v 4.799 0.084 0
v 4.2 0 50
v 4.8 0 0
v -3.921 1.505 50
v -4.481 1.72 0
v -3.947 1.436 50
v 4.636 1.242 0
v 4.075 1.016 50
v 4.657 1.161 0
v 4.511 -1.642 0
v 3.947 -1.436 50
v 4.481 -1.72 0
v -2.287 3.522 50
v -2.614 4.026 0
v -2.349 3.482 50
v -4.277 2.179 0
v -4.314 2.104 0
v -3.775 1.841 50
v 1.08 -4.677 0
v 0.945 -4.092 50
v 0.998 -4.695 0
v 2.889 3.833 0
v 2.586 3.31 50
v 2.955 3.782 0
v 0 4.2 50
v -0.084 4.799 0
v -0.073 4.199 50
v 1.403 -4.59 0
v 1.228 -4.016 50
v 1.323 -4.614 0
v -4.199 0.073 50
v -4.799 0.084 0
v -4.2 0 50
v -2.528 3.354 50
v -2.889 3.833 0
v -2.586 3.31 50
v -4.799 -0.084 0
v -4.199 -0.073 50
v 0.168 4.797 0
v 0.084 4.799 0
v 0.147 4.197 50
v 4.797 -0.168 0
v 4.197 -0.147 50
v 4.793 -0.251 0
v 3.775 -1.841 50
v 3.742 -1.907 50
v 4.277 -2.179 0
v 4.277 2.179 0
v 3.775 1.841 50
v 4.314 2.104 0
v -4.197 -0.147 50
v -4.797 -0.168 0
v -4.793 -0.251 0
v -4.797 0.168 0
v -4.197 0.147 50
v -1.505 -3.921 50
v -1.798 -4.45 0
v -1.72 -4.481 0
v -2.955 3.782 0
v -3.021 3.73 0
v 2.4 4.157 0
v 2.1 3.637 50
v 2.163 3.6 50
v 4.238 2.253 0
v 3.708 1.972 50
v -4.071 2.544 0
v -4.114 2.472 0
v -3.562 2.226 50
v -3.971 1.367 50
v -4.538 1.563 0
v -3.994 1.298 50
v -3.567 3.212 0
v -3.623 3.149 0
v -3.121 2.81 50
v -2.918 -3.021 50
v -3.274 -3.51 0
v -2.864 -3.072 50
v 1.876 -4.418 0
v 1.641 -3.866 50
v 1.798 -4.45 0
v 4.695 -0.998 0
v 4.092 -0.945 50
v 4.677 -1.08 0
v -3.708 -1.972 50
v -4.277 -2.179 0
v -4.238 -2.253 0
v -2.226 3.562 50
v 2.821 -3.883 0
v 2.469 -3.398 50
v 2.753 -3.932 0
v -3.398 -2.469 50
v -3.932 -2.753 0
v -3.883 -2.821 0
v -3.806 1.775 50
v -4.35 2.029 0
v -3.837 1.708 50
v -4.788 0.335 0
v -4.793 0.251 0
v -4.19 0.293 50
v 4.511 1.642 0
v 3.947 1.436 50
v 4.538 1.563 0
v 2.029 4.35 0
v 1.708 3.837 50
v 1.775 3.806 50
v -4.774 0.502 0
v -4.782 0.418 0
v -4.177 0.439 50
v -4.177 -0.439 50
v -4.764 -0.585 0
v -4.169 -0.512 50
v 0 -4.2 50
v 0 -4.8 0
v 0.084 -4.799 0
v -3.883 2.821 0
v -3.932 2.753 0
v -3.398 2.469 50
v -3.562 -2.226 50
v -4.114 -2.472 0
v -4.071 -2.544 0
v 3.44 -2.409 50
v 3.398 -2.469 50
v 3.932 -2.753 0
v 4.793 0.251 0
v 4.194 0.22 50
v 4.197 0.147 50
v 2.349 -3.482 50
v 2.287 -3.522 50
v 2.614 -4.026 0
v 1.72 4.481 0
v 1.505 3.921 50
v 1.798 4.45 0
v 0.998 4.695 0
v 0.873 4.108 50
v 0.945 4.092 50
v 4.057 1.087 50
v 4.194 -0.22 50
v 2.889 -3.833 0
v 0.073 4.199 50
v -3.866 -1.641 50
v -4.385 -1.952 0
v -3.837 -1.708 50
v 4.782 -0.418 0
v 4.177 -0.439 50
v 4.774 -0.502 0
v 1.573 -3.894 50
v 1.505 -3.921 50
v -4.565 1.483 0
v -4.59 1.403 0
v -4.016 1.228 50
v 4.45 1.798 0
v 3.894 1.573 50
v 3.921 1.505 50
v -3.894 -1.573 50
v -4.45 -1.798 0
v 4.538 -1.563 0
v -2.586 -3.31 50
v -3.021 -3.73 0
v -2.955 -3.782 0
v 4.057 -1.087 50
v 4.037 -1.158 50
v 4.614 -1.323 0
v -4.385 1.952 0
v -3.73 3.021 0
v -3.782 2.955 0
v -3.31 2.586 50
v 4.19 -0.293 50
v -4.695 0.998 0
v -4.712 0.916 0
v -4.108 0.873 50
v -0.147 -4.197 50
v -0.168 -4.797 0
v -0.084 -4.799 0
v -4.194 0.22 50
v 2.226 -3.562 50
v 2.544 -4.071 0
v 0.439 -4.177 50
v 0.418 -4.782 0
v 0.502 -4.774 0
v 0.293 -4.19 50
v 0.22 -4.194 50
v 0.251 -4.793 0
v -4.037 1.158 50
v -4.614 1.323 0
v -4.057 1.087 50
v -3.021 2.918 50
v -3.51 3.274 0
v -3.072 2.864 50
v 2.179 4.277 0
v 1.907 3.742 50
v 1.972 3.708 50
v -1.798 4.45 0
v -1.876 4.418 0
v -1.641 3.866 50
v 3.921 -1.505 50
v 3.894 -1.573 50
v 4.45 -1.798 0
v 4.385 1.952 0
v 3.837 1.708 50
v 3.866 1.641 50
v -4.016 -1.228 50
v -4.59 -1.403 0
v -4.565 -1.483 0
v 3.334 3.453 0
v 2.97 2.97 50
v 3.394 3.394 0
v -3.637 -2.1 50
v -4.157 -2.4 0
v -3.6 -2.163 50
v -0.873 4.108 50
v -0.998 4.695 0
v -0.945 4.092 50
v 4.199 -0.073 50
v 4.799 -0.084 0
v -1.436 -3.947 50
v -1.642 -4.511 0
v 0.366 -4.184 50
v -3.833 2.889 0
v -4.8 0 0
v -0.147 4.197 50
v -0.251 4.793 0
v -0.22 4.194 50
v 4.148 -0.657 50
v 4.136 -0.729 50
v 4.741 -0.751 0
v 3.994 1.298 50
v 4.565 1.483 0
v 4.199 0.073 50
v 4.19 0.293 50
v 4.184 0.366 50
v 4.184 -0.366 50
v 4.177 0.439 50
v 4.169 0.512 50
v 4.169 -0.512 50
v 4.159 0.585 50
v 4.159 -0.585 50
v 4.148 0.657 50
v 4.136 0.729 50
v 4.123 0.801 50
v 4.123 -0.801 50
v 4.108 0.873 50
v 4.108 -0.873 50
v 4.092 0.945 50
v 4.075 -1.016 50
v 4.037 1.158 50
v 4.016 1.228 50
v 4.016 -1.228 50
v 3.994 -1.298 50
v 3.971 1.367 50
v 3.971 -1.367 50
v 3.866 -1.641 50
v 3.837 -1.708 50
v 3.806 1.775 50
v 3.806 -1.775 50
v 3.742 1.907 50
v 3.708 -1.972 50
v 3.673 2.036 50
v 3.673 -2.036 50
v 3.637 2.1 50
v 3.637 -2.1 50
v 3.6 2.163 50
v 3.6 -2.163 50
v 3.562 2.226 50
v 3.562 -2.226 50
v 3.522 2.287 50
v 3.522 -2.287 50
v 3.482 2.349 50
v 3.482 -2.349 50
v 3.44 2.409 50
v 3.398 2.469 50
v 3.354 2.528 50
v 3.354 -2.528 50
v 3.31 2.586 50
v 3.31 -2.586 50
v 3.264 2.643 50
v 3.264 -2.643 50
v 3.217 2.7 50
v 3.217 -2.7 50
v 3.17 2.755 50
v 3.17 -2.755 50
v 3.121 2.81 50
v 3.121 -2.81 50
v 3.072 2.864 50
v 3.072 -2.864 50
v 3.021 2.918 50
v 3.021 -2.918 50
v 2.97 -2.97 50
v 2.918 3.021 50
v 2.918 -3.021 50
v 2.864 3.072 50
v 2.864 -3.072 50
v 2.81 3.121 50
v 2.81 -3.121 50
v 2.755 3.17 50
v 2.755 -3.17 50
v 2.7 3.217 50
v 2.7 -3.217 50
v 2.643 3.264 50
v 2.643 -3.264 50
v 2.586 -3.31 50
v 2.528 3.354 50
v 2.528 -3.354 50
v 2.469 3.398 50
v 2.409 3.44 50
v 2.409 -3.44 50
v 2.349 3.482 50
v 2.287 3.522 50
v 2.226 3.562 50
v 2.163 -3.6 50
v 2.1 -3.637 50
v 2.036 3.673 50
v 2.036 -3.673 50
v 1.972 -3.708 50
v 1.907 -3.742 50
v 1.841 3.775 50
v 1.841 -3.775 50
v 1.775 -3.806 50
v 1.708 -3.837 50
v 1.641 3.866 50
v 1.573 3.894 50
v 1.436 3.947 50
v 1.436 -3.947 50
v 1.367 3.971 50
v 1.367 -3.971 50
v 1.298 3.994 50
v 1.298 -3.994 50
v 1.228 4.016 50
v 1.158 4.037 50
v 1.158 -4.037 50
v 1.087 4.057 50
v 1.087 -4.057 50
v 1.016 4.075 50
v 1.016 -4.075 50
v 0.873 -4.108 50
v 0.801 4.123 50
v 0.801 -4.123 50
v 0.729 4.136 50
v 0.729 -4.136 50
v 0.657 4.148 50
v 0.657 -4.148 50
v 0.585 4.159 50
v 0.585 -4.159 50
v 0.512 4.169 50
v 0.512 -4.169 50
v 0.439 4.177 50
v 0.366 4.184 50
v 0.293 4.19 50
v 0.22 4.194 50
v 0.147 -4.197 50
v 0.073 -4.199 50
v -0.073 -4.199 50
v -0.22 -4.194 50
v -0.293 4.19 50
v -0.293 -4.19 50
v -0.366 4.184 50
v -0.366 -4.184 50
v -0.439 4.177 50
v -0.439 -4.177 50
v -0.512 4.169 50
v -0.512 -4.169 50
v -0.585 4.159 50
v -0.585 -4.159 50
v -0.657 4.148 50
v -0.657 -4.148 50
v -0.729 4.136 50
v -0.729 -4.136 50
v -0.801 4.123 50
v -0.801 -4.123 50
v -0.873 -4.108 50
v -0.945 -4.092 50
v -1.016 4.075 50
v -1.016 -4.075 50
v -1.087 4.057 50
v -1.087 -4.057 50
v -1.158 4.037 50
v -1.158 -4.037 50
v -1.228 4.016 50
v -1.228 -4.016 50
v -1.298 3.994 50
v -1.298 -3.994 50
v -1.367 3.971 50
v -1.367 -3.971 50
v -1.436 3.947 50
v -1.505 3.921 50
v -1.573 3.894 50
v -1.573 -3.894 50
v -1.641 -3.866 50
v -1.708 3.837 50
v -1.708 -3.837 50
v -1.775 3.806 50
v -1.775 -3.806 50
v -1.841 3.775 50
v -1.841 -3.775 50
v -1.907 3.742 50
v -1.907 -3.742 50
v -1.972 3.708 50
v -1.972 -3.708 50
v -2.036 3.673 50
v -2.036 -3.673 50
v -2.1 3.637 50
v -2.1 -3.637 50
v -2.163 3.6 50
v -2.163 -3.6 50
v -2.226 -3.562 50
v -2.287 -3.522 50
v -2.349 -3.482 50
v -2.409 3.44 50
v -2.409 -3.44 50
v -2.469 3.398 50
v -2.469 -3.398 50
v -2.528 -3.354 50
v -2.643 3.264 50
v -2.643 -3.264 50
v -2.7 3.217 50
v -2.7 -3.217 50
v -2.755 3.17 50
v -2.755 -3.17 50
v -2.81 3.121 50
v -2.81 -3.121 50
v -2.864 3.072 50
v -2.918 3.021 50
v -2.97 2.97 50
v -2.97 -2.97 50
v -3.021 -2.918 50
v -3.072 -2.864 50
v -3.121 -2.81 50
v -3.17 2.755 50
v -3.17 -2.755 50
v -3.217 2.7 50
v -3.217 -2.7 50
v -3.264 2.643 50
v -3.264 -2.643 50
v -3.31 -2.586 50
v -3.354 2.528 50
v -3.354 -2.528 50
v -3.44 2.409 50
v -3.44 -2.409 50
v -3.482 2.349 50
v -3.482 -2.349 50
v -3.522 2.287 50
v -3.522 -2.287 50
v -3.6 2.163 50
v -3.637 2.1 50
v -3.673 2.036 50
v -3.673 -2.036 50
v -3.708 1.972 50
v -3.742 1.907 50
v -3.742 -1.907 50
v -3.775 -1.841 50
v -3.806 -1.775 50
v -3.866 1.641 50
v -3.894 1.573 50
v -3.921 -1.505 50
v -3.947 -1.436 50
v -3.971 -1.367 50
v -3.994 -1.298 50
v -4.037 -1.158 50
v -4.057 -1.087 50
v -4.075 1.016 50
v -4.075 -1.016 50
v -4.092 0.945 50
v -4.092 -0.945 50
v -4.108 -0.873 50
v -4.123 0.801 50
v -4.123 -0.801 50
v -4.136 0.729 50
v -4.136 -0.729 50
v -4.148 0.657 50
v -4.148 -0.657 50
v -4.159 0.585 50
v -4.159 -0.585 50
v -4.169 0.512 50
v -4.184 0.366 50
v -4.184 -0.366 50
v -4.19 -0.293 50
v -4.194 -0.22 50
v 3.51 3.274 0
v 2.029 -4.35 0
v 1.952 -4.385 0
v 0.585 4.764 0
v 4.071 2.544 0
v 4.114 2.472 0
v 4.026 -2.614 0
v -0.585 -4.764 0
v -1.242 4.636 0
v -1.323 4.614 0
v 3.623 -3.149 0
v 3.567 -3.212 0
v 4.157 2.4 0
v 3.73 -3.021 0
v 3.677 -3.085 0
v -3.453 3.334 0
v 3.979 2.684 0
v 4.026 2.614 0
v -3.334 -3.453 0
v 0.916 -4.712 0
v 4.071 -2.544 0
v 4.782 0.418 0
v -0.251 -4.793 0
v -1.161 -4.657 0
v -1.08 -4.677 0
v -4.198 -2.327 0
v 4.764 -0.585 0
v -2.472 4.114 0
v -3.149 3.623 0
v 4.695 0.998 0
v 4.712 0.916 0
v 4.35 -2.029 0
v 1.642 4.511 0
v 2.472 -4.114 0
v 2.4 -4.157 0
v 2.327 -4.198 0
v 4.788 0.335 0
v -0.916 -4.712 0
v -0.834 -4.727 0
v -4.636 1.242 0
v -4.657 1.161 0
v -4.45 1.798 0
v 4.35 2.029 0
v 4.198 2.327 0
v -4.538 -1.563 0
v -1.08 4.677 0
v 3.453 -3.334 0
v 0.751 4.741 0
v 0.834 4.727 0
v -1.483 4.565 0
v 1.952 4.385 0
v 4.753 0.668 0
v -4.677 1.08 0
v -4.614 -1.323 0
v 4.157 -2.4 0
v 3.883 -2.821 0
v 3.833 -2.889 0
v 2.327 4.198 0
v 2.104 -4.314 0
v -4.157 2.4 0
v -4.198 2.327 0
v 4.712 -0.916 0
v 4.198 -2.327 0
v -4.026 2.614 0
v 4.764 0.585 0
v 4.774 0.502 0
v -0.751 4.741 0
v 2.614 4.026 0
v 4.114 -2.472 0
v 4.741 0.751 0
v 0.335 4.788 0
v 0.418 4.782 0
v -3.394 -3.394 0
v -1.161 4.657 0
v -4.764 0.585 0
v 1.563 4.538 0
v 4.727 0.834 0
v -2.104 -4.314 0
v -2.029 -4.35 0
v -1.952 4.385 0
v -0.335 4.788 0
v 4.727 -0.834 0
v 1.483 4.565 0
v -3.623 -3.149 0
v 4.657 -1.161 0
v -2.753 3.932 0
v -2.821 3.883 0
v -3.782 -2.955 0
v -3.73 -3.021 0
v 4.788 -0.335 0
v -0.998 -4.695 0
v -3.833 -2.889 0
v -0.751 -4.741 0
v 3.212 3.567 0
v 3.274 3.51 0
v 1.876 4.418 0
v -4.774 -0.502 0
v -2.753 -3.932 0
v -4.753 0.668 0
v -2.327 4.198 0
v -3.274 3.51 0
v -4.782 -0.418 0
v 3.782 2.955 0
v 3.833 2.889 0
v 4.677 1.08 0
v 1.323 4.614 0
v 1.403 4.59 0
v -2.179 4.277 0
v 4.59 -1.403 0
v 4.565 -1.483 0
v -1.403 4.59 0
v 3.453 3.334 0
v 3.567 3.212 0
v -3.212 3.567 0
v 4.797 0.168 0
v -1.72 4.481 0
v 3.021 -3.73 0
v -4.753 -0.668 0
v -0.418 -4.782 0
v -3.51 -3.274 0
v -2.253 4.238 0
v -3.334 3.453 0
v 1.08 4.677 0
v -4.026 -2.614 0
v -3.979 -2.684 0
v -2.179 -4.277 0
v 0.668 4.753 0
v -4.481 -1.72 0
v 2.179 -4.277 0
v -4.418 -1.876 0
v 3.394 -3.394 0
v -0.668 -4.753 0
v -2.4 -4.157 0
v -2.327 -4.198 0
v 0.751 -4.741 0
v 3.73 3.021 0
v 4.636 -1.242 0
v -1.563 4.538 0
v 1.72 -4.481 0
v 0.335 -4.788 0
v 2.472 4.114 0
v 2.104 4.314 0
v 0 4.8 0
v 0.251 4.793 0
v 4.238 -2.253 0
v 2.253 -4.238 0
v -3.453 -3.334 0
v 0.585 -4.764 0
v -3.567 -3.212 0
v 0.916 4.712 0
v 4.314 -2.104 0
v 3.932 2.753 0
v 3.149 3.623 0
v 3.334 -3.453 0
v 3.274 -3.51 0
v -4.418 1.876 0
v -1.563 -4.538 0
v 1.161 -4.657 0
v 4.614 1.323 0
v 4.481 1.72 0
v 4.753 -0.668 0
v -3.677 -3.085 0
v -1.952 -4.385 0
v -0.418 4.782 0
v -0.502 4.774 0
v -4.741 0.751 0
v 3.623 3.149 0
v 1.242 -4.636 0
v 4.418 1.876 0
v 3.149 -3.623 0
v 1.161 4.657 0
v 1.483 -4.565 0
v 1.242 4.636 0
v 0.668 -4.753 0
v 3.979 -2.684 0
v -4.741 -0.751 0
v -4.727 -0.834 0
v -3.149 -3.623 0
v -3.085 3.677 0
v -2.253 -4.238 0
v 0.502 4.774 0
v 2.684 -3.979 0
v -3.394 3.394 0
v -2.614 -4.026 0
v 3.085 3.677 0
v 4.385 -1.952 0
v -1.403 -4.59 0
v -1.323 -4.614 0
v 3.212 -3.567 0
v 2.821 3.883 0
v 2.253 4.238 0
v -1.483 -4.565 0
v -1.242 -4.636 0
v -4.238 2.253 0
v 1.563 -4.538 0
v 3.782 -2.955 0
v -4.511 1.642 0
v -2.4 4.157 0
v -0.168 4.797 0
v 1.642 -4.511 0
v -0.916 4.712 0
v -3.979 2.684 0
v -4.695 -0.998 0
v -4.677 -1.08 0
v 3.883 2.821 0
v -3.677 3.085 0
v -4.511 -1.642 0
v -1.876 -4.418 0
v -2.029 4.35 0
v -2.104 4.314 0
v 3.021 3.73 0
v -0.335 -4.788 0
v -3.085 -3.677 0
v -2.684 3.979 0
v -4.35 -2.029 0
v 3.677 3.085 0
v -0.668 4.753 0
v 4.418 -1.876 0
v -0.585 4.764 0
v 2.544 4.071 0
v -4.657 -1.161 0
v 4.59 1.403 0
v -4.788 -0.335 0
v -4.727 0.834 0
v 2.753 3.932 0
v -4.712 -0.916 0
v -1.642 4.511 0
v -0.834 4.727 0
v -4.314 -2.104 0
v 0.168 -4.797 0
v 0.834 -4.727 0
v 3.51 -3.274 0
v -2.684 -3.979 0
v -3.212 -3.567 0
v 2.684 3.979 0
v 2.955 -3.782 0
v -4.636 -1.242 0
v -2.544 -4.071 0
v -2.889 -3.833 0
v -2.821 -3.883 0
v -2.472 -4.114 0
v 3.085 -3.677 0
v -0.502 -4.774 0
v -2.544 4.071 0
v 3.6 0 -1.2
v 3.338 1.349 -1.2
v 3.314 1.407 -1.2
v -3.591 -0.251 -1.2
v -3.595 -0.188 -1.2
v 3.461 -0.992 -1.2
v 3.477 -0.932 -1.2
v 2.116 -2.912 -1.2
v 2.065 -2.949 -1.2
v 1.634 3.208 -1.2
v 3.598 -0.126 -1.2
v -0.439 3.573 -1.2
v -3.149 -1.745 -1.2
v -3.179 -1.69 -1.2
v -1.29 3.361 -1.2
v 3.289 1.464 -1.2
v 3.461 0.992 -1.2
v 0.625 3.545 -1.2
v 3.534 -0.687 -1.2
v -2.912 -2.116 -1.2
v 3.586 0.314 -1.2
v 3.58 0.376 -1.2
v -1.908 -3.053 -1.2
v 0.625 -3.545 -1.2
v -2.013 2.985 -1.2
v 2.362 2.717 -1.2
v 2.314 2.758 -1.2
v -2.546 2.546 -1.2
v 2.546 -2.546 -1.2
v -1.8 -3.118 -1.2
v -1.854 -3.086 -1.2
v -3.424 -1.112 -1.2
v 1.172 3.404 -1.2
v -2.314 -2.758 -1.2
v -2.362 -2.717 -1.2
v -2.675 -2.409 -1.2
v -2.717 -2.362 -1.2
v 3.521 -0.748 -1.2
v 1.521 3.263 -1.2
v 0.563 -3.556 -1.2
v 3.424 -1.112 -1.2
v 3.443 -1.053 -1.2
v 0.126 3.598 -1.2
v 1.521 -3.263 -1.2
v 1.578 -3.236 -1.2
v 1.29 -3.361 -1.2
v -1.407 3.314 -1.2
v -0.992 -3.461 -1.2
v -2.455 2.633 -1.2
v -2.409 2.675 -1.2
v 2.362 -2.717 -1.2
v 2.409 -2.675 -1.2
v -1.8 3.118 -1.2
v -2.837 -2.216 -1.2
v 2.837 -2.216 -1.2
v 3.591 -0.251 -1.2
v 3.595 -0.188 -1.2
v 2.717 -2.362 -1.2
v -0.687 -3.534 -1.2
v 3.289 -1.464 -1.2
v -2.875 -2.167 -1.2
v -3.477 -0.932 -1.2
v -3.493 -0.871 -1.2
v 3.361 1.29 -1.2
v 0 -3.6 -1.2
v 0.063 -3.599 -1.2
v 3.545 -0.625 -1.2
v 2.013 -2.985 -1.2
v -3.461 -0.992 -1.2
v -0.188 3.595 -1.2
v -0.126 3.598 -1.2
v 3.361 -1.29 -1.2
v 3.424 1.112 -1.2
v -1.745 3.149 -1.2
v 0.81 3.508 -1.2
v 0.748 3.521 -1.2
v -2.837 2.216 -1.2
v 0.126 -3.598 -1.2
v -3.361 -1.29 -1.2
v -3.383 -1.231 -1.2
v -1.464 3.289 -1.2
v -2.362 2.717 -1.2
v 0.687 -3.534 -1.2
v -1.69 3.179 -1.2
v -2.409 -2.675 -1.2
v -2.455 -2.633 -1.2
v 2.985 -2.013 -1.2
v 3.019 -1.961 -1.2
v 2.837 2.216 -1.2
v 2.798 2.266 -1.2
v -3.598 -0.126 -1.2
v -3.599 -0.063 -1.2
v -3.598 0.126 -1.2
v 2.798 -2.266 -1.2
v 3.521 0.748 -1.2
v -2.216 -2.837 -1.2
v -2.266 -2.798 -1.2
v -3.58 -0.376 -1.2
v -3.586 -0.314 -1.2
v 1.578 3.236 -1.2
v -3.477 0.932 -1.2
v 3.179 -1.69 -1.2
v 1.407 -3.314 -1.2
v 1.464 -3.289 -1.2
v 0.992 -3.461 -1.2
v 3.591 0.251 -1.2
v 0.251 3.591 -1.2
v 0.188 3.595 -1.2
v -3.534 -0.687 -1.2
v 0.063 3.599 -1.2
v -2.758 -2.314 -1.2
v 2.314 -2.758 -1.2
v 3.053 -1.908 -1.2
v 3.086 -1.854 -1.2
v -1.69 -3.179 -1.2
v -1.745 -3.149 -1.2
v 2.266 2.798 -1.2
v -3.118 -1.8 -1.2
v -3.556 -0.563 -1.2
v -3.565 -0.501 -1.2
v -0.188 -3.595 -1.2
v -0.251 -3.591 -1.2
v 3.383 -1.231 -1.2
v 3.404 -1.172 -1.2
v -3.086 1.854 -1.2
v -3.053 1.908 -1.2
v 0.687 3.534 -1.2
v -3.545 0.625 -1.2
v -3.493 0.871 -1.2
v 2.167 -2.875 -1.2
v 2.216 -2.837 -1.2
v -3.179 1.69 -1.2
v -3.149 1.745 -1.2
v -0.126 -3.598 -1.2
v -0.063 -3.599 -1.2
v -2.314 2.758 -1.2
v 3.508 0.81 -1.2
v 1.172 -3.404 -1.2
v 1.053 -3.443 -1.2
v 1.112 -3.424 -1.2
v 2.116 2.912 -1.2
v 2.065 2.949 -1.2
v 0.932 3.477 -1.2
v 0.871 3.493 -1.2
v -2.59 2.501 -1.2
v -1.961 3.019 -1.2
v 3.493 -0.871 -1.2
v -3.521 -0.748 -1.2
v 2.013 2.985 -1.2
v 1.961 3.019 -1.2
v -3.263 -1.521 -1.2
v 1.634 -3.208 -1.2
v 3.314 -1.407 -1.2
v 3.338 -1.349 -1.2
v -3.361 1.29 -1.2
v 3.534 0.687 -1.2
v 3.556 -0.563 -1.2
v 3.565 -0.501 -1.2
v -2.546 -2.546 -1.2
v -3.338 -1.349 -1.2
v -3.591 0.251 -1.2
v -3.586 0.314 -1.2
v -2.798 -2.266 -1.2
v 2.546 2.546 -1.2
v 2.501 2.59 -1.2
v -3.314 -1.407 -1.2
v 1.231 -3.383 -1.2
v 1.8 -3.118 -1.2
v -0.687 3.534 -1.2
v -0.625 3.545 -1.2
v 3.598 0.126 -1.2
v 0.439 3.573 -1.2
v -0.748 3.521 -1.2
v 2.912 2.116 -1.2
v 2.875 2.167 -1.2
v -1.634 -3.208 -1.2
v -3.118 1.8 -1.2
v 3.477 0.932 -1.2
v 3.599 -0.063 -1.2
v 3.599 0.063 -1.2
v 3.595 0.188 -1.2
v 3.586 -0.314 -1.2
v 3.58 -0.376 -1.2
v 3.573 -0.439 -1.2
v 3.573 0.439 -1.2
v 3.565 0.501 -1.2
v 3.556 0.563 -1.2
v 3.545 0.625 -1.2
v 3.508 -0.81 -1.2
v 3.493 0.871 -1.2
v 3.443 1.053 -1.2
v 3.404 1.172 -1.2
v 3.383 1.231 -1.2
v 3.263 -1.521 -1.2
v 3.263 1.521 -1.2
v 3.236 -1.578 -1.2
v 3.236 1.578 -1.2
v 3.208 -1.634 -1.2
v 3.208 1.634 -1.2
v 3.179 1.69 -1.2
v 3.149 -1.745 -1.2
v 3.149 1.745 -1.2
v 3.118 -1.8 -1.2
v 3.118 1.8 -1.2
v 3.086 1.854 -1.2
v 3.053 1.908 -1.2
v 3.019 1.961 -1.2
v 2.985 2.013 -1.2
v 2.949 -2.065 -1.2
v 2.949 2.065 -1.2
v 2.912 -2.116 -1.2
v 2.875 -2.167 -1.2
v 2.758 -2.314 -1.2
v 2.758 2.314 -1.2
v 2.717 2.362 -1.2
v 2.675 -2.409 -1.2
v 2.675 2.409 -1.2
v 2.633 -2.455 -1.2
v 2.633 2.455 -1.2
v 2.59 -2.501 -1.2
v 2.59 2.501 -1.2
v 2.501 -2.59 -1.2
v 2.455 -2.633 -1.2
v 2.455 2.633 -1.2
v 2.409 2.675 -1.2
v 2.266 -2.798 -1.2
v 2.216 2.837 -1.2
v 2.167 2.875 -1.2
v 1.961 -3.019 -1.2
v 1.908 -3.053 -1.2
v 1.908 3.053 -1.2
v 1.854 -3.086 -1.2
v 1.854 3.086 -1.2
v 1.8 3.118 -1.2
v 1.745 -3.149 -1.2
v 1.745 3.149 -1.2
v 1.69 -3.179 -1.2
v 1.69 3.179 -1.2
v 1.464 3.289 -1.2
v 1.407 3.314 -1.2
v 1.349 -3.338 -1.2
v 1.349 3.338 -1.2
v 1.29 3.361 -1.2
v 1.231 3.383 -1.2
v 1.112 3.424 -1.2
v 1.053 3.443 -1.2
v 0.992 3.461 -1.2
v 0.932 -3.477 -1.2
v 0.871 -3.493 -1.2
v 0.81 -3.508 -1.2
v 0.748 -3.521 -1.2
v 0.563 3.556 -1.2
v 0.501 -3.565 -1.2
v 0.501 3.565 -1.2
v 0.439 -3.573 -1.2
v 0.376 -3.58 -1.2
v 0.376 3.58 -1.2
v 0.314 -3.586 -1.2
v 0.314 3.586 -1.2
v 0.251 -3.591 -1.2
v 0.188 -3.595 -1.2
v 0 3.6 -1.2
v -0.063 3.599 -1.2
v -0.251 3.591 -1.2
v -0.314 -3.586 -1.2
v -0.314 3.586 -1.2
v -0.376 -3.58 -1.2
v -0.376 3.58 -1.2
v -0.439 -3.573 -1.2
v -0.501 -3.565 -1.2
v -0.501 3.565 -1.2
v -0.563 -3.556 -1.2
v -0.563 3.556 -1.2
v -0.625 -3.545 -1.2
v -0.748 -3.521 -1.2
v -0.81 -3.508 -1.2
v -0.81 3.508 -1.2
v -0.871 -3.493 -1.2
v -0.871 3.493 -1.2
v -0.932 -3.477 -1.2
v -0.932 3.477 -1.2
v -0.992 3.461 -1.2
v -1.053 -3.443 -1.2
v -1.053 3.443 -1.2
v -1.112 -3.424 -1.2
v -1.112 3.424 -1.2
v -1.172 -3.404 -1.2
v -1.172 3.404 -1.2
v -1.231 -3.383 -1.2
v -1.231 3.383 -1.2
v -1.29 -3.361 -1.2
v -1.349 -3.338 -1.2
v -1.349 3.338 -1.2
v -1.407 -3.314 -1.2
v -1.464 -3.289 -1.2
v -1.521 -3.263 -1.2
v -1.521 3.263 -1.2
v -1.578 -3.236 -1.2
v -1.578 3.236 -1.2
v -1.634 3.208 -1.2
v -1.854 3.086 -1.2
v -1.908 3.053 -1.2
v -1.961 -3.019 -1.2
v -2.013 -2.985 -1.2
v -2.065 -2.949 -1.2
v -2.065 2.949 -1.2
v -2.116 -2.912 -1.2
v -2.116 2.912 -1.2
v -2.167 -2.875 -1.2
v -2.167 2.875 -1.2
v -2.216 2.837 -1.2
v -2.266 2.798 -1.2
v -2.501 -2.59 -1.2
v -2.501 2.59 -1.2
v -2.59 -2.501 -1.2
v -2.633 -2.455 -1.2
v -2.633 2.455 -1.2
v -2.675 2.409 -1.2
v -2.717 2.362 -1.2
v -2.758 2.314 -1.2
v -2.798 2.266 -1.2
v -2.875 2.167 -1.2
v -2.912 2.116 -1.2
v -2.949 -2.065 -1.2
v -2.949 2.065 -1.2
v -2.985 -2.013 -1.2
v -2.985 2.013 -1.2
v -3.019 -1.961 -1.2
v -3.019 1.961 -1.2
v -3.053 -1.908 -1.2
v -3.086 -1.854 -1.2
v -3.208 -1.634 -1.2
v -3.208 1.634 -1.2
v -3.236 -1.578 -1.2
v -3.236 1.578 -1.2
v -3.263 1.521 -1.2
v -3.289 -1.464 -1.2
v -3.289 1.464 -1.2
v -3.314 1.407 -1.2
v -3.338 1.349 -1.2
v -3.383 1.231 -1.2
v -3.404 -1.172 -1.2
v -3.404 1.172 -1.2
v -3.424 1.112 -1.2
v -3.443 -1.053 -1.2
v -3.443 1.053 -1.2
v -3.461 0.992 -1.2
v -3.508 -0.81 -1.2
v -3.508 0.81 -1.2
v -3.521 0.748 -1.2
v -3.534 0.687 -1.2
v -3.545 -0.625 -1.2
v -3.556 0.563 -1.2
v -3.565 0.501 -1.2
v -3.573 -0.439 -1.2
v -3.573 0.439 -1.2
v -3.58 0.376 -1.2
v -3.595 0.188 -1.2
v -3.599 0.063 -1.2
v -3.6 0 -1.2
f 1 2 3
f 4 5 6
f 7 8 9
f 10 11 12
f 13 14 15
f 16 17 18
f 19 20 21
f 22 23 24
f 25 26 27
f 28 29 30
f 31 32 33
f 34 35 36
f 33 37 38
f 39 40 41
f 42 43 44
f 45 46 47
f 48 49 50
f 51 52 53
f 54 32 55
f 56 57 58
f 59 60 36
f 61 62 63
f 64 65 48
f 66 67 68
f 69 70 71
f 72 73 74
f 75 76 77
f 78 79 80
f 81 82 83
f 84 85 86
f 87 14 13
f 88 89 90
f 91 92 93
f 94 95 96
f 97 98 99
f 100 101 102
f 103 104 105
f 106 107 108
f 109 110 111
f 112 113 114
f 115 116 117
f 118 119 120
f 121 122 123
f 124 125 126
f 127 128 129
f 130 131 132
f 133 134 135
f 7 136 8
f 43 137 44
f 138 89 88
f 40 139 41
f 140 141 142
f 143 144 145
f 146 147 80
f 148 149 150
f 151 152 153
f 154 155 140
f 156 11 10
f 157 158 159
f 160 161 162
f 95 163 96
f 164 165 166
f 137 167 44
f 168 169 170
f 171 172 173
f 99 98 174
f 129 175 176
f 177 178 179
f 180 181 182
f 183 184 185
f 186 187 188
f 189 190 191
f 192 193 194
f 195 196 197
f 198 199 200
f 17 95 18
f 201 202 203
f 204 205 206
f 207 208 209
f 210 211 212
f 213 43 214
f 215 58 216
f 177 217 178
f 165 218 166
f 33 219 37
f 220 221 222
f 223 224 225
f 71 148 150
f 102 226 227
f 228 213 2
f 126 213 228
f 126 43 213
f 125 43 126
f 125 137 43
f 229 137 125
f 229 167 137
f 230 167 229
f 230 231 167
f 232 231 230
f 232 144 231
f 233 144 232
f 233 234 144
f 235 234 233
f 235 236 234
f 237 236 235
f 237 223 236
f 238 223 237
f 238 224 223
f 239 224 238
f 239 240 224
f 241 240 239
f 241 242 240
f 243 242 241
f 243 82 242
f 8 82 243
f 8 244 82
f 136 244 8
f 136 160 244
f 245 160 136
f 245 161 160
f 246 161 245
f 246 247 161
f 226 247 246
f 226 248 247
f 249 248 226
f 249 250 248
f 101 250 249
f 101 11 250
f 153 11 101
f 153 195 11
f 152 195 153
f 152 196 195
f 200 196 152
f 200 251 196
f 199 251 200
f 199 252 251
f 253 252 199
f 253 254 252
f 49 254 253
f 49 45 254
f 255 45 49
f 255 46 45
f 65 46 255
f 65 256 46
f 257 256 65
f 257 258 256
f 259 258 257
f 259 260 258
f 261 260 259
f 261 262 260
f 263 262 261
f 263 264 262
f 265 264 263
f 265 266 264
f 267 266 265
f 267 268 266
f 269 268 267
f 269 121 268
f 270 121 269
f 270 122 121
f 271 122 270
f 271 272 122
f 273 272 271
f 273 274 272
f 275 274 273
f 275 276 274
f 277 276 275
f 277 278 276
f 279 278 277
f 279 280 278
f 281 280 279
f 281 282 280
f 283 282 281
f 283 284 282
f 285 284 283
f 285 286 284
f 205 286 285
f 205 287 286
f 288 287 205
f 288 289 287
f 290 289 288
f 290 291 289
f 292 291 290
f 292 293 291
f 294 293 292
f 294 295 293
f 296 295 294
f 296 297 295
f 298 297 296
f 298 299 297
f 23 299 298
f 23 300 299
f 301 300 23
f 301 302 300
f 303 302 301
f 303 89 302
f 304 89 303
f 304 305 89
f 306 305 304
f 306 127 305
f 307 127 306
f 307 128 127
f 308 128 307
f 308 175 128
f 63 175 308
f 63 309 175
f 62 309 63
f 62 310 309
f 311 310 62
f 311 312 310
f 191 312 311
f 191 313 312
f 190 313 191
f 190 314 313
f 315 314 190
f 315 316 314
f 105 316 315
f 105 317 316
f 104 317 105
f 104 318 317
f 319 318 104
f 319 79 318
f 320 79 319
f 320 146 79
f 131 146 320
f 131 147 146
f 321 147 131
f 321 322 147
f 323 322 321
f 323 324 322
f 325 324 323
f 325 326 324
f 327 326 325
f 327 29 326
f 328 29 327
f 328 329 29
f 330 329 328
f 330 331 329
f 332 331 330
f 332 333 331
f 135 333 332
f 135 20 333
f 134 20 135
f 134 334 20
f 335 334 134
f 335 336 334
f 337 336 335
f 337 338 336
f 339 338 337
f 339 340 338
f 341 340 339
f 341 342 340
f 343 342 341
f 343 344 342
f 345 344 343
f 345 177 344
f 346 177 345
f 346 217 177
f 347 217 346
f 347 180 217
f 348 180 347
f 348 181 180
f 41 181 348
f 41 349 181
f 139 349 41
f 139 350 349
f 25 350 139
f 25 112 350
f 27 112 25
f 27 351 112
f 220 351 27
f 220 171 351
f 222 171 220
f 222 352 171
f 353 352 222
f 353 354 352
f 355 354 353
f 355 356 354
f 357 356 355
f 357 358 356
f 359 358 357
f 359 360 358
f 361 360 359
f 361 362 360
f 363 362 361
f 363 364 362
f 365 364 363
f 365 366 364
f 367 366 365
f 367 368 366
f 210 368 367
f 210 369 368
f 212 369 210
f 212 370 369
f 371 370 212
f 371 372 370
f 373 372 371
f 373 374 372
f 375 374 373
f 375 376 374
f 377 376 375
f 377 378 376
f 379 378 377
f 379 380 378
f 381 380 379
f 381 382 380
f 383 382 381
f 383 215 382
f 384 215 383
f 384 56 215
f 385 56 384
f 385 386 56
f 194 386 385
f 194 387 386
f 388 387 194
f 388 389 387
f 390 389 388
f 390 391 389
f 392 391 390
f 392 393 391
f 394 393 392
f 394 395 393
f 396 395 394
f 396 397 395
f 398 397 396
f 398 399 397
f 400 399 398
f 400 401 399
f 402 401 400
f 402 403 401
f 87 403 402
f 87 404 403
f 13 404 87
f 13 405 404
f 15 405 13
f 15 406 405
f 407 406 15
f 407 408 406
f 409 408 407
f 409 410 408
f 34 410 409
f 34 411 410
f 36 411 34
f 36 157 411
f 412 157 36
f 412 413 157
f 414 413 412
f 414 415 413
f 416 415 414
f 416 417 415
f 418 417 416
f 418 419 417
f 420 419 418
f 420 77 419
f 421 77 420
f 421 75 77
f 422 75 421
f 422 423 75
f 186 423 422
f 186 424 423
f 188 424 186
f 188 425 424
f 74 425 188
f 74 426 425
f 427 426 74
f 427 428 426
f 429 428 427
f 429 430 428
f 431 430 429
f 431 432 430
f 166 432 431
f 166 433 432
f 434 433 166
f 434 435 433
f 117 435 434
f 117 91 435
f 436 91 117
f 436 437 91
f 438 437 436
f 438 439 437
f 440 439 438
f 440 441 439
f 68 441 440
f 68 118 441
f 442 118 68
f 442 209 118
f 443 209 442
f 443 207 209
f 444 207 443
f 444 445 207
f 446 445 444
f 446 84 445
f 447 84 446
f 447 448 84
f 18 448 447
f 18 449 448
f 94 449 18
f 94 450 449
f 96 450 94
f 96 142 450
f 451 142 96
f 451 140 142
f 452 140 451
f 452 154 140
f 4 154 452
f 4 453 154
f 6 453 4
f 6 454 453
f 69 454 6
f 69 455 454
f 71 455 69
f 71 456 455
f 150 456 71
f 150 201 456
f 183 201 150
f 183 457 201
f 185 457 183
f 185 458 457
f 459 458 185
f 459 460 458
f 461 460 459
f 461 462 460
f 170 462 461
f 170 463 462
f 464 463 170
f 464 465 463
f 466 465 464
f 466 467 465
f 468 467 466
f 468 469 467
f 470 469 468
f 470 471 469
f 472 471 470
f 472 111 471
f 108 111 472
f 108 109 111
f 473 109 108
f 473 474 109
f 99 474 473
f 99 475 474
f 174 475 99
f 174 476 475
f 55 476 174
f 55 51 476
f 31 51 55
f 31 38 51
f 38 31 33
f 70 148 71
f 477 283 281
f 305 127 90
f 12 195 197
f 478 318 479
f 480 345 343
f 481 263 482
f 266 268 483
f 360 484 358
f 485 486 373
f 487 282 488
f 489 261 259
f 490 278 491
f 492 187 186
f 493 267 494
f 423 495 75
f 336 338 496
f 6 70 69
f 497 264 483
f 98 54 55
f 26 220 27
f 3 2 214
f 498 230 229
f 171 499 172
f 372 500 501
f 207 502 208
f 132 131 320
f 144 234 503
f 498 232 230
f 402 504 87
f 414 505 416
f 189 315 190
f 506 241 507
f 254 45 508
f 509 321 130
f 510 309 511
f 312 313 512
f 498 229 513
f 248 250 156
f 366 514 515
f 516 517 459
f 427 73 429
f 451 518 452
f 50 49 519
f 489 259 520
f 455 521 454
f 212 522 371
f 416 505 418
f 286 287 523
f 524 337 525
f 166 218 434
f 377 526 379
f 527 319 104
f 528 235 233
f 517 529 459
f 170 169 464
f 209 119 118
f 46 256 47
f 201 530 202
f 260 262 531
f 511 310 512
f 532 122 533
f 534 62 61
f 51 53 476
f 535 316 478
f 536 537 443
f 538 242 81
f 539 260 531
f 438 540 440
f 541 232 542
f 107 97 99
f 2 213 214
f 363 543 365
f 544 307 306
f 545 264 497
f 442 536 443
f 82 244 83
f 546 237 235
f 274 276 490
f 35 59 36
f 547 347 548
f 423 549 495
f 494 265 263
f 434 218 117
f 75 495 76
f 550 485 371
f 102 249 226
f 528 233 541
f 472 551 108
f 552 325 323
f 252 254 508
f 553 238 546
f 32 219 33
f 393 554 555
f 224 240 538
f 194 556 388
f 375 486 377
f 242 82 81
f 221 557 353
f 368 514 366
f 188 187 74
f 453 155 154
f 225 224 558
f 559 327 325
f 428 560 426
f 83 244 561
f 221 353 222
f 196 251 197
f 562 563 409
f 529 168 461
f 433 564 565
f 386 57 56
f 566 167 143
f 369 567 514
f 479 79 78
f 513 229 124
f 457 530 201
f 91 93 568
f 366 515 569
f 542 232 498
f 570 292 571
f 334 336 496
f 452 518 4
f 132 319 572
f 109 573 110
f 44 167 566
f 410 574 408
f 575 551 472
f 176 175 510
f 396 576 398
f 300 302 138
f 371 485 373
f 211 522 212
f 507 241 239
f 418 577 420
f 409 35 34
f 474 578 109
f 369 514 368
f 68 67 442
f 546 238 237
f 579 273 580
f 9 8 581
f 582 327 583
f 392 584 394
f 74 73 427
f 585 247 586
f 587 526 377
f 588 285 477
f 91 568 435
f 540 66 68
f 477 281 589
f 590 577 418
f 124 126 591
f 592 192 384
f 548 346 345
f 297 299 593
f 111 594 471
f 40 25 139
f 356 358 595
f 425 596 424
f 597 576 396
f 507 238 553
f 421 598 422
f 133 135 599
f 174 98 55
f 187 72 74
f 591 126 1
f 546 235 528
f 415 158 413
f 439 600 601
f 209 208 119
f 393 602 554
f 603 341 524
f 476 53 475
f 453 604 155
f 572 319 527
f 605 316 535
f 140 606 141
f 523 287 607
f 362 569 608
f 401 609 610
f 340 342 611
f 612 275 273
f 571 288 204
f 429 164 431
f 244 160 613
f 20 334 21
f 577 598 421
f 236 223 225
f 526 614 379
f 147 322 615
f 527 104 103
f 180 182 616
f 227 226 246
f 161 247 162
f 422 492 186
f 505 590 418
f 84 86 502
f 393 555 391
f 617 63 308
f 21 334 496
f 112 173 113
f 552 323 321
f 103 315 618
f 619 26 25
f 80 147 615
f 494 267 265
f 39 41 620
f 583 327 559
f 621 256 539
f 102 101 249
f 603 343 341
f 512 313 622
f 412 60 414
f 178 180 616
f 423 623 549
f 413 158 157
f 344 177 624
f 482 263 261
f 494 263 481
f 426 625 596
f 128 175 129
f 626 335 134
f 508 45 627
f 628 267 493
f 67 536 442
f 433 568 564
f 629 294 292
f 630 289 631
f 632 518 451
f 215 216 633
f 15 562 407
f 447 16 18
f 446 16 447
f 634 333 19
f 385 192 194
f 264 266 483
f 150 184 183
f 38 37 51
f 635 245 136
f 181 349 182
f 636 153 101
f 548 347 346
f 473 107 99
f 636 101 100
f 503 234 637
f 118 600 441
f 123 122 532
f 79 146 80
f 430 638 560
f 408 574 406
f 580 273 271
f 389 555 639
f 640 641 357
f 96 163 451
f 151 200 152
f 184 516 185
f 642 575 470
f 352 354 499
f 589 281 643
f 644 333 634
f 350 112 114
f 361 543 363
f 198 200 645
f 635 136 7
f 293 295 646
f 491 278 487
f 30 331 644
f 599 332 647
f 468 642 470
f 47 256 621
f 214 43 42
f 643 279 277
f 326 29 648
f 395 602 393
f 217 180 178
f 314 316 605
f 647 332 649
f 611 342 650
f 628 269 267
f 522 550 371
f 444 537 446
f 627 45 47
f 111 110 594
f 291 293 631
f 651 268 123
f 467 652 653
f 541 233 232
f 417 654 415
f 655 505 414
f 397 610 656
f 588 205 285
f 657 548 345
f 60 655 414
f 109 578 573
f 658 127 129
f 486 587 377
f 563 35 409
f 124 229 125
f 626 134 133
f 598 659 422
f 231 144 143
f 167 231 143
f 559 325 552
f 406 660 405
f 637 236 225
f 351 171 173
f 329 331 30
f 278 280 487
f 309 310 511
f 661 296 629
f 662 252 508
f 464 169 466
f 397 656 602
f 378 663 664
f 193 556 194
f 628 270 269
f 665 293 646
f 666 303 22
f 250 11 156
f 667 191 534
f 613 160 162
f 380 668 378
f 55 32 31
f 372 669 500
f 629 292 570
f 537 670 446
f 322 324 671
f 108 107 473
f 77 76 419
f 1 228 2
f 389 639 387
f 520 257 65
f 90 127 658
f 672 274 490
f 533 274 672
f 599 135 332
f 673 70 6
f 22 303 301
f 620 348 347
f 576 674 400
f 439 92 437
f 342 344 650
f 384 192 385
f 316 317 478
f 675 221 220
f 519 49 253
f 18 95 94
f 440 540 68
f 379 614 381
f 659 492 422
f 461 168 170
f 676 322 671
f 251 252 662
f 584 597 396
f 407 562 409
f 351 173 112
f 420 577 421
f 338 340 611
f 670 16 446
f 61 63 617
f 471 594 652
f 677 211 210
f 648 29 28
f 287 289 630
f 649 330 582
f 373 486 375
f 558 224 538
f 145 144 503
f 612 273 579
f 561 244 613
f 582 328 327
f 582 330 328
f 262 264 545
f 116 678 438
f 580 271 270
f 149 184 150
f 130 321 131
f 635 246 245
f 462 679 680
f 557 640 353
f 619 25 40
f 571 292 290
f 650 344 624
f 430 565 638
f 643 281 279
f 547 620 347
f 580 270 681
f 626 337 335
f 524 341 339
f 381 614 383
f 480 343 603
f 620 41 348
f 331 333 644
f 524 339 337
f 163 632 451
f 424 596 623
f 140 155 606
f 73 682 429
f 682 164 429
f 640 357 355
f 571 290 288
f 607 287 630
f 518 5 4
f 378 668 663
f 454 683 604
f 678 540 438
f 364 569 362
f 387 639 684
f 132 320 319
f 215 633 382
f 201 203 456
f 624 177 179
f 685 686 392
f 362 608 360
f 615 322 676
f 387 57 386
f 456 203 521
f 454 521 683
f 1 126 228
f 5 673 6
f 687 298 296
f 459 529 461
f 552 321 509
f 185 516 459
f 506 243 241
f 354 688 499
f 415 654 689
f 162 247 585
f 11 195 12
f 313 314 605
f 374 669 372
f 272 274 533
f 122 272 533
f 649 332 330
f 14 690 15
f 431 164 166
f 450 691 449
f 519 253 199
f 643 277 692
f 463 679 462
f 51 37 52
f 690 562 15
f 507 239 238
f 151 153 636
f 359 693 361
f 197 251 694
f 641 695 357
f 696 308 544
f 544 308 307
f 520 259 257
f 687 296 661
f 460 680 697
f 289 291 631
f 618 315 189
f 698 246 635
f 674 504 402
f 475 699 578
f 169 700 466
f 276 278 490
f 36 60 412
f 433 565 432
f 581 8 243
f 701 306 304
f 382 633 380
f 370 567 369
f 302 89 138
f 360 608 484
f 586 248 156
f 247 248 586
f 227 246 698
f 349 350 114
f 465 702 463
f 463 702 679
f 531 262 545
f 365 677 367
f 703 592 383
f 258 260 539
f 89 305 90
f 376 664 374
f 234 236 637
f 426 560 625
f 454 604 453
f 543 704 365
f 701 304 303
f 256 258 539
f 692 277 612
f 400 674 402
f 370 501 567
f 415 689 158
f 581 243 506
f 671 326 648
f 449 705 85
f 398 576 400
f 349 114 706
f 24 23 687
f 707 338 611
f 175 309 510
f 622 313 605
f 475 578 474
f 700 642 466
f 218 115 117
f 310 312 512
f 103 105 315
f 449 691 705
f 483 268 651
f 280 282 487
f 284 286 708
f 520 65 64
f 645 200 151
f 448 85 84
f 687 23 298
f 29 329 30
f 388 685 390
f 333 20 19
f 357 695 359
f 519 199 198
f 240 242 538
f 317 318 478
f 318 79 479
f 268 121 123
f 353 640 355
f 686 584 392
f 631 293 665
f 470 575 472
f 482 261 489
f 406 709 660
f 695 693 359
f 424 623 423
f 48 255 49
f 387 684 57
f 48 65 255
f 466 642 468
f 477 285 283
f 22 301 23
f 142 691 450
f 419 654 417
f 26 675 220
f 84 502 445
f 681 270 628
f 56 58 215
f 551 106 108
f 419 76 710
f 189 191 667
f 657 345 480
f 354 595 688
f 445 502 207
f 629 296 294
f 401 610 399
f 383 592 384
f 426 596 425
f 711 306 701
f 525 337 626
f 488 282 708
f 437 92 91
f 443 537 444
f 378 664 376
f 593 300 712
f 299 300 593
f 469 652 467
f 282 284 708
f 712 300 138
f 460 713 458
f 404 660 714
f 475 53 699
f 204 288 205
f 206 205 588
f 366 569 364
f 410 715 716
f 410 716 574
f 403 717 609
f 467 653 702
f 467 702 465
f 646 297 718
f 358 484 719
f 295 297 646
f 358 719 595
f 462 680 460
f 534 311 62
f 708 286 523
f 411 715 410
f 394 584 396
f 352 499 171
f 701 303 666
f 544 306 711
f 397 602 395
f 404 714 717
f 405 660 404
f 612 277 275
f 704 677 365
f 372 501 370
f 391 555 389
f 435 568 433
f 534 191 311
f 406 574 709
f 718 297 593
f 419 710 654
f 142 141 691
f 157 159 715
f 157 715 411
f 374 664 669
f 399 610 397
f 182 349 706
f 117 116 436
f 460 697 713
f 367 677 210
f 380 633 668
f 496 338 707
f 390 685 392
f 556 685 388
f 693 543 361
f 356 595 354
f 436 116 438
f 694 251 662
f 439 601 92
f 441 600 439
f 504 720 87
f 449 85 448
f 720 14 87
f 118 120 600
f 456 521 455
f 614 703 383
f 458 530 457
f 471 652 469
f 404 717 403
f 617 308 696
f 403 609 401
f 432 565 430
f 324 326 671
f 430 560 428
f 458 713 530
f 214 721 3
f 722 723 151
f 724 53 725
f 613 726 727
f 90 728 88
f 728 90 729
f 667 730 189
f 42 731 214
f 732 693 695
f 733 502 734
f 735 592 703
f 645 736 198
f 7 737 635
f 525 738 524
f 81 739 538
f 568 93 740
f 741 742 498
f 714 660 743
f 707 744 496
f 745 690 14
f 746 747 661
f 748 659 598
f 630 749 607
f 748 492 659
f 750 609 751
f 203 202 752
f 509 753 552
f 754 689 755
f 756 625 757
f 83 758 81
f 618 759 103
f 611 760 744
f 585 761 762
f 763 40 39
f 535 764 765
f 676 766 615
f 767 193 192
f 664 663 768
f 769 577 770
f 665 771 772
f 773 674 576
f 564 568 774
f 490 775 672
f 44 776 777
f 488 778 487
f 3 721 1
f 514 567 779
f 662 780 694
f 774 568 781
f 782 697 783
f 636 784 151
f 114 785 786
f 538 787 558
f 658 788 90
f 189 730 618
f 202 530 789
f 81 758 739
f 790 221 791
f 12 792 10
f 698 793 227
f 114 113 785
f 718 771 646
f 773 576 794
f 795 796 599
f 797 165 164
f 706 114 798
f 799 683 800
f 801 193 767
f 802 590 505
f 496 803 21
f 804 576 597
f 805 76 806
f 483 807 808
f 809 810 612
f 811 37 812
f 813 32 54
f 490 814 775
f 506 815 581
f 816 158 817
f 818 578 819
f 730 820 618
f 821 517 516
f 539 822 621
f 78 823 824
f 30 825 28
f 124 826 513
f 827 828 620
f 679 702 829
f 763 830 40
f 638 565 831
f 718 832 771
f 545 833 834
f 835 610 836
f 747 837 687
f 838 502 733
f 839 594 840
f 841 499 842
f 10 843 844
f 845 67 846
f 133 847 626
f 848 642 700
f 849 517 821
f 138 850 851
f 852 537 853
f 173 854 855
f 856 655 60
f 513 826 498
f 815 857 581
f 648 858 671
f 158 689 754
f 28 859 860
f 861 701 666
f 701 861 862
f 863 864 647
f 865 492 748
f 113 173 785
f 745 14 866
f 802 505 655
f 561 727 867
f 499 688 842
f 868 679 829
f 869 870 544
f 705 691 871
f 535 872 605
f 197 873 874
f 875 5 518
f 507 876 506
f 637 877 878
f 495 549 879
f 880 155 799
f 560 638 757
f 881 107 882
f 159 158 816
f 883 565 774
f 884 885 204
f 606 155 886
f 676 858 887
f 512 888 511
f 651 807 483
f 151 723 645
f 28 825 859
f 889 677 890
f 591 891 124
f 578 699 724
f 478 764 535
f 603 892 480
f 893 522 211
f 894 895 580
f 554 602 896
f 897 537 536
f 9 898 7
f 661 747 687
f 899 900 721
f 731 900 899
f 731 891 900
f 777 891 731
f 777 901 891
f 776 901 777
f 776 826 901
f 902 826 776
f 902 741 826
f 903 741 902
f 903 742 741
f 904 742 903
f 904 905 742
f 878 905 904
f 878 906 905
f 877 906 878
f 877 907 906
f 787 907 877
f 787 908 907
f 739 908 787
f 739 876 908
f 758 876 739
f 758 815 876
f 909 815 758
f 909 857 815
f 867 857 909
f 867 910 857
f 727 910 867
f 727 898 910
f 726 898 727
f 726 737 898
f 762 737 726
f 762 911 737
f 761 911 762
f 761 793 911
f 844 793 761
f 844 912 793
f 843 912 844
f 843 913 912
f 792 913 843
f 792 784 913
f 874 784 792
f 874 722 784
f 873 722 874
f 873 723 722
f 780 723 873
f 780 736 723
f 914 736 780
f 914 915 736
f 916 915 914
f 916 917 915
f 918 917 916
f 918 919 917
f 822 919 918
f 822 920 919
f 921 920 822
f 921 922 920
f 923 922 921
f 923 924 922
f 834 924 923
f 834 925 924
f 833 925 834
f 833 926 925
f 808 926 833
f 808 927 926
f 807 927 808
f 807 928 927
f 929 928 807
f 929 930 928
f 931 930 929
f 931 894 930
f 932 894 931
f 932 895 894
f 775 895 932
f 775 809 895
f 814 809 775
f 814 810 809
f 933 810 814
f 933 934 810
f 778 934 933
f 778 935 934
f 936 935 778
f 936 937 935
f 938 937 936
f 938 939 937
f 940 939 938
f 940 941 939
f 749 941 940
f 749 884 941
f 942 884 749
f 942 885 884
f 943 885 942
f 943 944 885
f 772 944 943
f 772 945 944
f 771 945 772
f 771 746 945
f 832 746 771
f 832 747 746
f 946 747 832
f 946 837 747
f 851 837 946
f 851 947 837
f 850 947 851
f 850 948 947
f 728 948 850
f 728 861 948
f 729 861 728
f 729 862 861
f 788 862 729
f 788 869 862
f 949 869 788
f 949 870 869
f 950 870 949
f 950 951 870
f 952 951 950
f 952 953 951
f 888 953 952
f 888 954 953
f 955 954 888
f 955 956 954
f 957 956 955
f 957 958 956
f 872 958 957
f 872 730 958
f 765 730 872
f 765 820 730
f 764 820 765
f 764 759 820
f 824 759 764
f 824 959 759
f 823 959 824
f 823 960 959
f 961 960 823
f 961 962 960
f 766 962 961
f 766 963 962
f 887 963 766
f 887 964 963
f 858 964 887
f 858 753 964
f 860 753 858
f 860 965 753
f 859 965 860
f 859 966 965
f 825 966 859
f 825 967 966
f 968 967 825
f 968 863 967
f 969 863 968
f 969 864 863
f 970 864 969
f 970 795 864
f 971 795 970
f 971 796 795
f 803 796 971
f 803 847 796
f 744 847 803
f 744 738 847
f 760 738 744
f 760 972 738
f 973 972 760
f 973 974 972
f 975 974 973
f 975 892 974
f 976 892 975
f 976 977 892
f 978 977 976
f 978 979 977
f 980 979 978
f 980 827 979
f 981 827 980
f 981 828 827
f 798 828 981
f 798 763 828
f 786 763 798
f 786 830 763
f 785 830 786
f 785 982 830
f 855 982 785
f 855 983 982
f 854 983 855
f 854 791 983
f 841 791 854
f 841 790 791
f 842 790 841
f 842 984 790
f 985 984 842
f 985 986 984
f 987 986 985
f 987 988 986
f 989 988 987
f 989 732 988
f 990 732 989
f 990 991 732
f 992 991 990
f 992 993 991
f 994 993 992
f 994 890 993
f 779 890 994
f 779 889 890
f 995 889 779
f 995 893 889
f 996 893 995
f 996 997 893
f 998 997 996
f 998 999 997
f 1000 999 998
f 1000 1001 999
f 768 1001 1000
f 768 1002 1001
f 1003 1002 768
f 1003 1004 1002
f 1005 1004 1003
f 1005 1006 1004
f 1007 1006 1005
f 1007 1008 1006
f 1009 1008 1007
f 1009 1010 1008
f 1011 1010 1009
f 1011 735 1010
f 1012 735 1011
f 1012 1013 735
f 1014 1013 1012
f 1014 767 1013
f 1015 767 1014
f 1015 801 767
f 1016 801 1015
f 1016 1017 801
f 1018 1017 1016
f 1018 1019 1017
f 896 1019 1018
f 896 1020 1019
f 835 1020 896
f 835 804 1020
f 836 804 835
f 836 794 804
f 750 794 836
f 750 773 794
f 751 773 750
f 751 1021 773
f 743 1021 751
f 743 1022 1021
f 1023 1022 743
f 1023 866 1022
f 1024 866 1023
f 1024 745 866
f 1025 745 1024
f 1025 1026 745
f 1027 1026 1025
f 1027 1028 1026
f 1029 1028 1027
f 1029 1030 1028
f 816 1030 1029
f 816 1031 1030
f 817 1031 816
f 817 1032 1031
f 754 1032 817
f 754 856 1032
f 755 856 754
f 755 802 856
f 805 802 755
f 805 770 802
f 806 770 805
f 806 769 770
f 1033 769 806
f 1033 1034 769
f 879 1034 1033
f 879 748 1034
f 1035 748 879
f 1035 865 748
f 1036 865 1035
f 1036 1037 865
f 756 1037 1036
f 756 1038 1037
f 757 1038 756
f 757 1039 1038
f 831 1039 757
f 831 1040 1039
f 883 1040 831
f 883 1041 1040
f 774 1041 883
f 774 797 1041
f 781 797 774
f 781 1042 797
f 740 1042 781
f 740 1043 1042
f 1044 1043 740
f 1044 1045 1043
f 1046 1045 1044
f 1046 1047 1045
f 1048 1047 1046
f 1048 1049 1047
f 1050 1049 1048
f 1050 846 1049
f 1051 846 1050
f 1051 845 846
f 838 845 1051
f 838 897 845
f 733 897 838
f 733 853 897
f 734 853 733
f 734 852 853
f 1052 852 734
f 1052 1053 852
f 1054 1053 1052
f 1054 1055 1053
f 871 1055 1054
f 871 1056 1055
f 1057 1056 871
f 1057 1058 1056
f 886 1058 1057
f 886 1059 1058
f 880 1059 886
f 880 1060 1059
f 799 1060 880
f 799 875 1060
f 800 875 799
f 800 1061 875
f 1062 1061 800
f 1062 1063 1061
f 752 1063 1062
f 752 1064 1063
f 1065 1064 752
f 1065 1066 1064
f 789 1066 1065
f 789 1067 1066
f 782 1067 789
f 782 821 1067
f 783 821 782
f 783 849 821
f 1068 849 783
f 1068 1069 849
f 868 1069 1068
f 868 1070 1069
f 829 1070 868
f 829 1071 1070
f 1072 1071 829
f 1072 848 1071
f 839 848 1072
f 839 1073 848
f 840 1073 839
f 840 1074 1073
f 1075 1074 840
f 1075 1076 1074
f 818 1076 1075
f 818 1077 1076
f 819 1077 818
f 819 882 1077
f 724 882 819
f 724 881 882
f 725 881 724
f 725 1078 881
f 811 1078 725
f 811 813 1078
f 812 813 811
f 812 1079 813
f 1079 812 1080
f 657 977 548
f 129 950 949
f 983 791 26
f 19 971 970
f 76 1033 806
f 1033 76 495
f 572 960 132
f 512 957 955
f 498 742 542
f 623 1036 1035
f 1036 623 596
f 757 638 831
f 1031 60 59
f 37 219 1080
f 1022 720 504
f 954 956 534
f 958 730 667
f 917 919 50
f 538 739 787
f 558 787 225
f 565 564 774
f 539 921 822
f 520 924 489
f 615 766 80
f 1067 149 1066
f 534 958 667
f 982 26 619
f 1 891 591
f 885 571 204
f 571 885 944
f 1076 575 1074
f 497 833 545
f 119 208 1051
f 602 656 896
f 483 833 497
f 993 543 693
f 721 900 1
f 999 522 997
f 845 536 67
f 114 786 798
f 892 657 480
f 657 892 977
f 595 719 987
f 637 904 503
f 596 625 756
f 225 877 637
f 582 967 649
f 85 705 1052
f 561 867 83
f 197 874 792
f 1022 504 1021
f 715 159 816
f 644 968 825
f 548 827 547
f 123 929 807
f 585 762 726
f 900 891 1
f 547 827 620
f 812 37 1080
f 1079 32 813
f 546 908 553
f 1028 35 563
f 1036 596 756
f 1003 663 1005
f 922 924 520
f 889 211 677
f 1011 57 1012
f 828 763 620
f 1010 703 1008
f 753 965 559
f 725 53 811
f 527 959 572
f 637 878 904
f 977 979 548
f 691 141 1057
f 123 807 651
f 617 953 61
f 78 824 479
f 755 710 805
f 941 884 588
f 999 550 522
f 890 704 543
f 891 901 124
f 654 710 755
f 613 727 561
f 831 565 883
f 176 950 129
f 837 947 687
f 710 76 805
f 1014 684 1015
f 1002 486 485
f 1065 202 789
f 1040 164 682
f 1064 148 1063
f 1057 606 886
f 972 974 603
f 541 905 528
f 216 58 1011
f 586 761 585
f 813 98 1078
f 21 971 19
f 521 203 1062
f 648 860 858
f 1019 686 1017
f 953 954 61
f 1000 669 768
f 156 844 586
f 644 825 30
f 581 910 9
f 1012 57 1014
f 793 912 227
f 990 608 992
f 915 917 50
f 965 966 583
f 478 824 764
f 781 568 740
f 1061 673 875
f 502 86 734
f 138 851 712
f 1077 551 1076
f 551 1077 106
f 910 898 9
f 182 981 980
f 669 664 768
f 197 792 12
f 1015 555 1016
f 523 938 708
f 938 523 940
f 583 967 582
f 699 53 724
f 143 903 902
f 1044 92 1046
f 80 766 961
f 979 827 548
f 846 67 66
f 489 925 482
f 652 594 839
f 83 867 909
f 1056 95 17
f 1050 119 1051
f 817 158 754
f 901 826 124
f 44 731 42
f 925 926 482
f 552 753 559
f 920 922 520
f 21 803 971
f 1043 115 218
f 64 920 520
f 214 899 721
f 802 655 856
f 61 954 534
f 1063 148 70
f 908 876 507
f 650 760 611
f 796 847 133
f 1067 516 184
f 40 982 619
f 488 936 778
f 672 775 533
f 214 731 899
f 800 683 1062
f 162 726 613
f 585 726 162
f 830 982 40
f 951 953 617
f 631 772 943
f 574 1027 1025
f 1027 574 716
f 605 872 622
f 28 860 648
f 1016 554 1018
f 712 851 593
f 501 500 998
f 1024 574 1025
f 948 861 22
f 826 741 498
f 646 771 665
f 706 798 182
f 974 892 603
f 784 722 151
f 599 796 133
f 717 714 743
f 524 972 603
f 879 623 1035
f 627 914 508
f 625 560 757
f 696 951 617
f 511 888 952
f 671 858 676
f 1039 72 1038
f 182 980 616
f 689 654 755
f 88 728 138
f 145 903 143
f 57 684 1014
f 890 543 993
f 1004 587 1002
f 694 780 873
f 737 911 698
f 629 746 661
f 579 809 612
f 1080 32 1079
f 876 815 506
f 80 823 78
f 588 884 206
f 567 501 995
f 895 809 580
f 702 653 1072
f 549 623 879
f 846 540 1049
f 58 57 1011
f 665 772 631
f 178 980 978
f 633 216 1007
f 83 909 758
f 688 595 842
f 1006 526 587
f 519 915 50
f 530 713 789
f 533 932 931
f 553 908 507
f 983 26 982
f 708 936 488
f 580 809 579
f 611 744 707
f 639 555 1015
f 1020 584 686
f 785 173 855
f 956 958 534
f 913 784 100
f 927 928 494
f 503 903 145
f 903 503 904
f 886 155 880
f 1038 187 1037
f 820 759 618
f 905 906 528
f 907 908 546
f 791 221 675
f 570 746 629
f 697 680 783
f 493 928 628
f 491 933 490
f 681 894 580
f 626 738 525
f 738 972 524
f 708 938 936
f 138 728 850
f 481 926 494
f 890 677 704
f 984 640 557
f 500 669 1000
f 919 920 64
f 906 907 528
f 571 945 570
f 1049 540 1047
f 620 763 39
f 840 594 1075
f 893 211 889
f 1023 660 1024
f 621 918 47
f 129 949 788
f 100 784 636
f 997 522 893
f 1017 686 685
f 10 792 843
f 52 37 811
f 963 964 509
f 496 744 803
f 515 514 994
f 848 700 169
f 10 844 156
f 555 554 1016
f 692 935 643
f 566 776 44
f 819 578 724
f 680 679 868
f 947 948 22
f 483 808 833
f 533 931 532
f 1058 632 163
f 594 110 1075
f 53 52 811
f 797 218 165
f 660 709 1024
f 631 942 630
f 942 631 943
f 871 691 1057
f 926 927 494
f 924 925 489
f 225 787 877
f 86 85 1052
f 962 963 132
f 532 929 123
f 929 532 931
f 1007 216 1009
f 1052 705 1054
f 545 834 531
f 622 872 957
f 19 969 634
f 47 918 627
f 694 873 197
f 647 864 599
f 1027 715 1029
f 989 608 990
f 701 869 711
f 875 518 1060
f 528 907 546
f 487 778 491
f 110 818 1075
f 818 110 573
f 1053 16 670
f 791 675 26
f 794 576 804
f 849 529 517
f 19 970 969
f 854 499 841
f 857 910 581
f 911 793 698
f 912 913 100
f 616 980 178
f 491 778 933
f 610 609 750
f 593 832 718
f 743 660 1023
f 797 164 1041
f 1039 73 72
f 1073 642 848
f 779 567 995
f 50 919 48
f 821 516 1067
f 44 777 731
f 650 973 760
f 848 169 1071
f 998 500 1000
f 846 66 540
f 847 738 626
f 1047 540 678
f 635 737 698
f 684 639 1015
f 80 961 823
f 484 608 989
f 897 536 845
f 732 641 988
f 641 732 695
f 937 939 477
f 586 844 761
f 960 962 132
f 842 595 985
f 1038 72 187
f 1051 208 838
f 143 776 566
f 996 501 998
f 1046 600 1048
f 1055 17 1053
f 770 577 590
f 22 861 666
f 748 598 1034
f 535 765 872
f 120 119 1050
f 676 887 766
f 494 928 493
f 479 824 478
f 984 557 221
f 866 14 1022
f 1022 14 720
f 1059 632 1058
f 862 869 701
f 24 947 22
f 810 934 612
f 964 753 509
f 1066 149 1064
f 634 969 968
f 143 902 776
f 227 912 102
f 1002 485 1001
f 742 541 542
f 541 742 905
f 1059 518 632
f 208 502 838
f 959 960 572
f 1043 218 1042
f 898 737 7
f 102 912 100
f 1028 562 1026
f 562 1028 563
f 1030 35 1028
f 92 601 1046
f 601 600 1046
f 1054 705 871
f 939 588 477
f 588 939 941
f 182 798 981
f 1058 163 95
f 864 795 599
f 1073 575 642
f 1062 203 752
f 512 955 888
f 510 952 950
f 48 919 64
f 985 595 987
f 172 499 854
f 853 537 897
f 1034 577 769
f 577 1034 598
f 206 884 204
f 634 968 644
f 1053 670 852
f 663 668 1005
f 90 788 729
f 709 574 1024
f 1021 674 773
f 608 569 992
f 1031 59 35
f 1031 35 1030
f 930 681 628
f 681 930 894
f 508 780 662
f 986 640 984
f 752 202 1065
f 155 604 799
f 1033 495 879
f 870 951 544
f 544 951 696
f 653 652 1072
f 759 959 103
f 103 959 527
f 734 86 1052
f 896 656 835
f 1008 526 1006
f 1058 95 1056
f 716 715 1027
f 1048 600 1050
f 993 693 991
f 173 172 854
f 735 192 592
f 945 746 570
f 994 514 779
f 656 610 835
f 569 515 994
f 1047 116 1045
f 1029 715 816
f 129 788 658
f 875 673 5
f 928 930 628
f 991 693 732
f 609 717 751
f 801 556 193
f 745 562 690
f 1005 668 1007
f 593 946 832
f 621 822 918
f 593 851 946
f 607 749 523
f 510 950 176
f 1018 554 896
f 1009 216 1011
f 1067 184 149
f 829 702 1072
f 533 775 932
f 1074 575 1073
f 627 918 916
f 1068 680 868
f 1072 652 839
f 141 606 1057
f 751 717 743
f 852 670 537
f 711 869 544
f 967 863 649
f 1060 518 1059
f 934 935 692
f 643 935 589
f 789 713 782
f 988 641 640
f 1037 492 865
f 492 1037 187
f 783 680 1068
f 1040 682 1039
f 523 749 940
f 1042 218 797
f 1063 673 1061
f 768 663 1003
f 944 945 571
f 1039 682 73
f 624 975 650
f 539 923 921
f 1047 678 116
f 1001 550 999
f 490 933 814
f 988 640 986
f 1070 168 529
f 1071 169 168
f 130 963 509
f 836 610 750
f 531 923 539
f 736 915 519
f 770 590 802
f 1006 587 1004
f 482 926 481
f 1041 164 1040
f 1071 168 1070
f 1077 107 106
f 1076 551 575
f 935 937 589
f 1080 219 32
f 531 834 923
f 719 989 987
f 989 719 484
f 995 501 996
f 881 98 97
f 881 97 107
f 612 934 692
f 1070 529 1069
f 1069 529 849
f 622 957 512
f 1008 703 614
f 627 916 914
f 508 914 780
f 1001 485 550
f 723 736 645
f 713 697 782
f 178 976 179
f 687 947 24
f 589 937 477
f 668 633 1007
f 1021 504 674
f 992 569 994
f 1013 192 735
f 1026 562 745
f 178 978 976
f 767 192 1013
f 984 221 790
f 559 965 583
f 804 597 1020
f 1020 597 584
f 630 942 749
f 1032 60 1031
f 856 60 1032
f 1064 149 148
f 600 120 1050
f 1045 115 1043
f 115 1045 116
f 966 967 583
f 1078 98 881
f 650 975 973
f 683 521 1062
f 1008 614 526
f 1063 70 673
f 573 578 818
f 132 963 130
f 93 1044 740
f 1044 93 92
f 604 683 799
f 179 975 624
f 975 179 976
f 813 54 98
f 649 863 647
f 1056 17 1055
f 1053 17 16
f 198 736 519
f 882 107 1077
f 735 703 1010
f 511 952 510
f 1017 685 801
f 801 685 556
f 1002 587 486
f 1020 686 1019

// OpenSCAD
// TRS-80 Model 100 prop up legs
// b.kenyon.w@gmail.com
// Initial eyeball version, not tested yet.

// Deepest part of the screw pocket seems to be about 8.35mm
// So the narrowest part of the taper here is 8.4mm so it wedges in before bottoming out.
// The surface opening of the screw pocket is about 8.75mm

// TODO idea: Add a shape on the side that fits the printer and/or serial ports
// so you can stick the pegs onto the printer & serial ports for storage/travel.?

$fn=360; // 360 facets for smooth walls
cylinder(50,4.8,4.2);  // main body
rotate([180,0,0]) cylinder(1.2,4.8,3.6); // foot
